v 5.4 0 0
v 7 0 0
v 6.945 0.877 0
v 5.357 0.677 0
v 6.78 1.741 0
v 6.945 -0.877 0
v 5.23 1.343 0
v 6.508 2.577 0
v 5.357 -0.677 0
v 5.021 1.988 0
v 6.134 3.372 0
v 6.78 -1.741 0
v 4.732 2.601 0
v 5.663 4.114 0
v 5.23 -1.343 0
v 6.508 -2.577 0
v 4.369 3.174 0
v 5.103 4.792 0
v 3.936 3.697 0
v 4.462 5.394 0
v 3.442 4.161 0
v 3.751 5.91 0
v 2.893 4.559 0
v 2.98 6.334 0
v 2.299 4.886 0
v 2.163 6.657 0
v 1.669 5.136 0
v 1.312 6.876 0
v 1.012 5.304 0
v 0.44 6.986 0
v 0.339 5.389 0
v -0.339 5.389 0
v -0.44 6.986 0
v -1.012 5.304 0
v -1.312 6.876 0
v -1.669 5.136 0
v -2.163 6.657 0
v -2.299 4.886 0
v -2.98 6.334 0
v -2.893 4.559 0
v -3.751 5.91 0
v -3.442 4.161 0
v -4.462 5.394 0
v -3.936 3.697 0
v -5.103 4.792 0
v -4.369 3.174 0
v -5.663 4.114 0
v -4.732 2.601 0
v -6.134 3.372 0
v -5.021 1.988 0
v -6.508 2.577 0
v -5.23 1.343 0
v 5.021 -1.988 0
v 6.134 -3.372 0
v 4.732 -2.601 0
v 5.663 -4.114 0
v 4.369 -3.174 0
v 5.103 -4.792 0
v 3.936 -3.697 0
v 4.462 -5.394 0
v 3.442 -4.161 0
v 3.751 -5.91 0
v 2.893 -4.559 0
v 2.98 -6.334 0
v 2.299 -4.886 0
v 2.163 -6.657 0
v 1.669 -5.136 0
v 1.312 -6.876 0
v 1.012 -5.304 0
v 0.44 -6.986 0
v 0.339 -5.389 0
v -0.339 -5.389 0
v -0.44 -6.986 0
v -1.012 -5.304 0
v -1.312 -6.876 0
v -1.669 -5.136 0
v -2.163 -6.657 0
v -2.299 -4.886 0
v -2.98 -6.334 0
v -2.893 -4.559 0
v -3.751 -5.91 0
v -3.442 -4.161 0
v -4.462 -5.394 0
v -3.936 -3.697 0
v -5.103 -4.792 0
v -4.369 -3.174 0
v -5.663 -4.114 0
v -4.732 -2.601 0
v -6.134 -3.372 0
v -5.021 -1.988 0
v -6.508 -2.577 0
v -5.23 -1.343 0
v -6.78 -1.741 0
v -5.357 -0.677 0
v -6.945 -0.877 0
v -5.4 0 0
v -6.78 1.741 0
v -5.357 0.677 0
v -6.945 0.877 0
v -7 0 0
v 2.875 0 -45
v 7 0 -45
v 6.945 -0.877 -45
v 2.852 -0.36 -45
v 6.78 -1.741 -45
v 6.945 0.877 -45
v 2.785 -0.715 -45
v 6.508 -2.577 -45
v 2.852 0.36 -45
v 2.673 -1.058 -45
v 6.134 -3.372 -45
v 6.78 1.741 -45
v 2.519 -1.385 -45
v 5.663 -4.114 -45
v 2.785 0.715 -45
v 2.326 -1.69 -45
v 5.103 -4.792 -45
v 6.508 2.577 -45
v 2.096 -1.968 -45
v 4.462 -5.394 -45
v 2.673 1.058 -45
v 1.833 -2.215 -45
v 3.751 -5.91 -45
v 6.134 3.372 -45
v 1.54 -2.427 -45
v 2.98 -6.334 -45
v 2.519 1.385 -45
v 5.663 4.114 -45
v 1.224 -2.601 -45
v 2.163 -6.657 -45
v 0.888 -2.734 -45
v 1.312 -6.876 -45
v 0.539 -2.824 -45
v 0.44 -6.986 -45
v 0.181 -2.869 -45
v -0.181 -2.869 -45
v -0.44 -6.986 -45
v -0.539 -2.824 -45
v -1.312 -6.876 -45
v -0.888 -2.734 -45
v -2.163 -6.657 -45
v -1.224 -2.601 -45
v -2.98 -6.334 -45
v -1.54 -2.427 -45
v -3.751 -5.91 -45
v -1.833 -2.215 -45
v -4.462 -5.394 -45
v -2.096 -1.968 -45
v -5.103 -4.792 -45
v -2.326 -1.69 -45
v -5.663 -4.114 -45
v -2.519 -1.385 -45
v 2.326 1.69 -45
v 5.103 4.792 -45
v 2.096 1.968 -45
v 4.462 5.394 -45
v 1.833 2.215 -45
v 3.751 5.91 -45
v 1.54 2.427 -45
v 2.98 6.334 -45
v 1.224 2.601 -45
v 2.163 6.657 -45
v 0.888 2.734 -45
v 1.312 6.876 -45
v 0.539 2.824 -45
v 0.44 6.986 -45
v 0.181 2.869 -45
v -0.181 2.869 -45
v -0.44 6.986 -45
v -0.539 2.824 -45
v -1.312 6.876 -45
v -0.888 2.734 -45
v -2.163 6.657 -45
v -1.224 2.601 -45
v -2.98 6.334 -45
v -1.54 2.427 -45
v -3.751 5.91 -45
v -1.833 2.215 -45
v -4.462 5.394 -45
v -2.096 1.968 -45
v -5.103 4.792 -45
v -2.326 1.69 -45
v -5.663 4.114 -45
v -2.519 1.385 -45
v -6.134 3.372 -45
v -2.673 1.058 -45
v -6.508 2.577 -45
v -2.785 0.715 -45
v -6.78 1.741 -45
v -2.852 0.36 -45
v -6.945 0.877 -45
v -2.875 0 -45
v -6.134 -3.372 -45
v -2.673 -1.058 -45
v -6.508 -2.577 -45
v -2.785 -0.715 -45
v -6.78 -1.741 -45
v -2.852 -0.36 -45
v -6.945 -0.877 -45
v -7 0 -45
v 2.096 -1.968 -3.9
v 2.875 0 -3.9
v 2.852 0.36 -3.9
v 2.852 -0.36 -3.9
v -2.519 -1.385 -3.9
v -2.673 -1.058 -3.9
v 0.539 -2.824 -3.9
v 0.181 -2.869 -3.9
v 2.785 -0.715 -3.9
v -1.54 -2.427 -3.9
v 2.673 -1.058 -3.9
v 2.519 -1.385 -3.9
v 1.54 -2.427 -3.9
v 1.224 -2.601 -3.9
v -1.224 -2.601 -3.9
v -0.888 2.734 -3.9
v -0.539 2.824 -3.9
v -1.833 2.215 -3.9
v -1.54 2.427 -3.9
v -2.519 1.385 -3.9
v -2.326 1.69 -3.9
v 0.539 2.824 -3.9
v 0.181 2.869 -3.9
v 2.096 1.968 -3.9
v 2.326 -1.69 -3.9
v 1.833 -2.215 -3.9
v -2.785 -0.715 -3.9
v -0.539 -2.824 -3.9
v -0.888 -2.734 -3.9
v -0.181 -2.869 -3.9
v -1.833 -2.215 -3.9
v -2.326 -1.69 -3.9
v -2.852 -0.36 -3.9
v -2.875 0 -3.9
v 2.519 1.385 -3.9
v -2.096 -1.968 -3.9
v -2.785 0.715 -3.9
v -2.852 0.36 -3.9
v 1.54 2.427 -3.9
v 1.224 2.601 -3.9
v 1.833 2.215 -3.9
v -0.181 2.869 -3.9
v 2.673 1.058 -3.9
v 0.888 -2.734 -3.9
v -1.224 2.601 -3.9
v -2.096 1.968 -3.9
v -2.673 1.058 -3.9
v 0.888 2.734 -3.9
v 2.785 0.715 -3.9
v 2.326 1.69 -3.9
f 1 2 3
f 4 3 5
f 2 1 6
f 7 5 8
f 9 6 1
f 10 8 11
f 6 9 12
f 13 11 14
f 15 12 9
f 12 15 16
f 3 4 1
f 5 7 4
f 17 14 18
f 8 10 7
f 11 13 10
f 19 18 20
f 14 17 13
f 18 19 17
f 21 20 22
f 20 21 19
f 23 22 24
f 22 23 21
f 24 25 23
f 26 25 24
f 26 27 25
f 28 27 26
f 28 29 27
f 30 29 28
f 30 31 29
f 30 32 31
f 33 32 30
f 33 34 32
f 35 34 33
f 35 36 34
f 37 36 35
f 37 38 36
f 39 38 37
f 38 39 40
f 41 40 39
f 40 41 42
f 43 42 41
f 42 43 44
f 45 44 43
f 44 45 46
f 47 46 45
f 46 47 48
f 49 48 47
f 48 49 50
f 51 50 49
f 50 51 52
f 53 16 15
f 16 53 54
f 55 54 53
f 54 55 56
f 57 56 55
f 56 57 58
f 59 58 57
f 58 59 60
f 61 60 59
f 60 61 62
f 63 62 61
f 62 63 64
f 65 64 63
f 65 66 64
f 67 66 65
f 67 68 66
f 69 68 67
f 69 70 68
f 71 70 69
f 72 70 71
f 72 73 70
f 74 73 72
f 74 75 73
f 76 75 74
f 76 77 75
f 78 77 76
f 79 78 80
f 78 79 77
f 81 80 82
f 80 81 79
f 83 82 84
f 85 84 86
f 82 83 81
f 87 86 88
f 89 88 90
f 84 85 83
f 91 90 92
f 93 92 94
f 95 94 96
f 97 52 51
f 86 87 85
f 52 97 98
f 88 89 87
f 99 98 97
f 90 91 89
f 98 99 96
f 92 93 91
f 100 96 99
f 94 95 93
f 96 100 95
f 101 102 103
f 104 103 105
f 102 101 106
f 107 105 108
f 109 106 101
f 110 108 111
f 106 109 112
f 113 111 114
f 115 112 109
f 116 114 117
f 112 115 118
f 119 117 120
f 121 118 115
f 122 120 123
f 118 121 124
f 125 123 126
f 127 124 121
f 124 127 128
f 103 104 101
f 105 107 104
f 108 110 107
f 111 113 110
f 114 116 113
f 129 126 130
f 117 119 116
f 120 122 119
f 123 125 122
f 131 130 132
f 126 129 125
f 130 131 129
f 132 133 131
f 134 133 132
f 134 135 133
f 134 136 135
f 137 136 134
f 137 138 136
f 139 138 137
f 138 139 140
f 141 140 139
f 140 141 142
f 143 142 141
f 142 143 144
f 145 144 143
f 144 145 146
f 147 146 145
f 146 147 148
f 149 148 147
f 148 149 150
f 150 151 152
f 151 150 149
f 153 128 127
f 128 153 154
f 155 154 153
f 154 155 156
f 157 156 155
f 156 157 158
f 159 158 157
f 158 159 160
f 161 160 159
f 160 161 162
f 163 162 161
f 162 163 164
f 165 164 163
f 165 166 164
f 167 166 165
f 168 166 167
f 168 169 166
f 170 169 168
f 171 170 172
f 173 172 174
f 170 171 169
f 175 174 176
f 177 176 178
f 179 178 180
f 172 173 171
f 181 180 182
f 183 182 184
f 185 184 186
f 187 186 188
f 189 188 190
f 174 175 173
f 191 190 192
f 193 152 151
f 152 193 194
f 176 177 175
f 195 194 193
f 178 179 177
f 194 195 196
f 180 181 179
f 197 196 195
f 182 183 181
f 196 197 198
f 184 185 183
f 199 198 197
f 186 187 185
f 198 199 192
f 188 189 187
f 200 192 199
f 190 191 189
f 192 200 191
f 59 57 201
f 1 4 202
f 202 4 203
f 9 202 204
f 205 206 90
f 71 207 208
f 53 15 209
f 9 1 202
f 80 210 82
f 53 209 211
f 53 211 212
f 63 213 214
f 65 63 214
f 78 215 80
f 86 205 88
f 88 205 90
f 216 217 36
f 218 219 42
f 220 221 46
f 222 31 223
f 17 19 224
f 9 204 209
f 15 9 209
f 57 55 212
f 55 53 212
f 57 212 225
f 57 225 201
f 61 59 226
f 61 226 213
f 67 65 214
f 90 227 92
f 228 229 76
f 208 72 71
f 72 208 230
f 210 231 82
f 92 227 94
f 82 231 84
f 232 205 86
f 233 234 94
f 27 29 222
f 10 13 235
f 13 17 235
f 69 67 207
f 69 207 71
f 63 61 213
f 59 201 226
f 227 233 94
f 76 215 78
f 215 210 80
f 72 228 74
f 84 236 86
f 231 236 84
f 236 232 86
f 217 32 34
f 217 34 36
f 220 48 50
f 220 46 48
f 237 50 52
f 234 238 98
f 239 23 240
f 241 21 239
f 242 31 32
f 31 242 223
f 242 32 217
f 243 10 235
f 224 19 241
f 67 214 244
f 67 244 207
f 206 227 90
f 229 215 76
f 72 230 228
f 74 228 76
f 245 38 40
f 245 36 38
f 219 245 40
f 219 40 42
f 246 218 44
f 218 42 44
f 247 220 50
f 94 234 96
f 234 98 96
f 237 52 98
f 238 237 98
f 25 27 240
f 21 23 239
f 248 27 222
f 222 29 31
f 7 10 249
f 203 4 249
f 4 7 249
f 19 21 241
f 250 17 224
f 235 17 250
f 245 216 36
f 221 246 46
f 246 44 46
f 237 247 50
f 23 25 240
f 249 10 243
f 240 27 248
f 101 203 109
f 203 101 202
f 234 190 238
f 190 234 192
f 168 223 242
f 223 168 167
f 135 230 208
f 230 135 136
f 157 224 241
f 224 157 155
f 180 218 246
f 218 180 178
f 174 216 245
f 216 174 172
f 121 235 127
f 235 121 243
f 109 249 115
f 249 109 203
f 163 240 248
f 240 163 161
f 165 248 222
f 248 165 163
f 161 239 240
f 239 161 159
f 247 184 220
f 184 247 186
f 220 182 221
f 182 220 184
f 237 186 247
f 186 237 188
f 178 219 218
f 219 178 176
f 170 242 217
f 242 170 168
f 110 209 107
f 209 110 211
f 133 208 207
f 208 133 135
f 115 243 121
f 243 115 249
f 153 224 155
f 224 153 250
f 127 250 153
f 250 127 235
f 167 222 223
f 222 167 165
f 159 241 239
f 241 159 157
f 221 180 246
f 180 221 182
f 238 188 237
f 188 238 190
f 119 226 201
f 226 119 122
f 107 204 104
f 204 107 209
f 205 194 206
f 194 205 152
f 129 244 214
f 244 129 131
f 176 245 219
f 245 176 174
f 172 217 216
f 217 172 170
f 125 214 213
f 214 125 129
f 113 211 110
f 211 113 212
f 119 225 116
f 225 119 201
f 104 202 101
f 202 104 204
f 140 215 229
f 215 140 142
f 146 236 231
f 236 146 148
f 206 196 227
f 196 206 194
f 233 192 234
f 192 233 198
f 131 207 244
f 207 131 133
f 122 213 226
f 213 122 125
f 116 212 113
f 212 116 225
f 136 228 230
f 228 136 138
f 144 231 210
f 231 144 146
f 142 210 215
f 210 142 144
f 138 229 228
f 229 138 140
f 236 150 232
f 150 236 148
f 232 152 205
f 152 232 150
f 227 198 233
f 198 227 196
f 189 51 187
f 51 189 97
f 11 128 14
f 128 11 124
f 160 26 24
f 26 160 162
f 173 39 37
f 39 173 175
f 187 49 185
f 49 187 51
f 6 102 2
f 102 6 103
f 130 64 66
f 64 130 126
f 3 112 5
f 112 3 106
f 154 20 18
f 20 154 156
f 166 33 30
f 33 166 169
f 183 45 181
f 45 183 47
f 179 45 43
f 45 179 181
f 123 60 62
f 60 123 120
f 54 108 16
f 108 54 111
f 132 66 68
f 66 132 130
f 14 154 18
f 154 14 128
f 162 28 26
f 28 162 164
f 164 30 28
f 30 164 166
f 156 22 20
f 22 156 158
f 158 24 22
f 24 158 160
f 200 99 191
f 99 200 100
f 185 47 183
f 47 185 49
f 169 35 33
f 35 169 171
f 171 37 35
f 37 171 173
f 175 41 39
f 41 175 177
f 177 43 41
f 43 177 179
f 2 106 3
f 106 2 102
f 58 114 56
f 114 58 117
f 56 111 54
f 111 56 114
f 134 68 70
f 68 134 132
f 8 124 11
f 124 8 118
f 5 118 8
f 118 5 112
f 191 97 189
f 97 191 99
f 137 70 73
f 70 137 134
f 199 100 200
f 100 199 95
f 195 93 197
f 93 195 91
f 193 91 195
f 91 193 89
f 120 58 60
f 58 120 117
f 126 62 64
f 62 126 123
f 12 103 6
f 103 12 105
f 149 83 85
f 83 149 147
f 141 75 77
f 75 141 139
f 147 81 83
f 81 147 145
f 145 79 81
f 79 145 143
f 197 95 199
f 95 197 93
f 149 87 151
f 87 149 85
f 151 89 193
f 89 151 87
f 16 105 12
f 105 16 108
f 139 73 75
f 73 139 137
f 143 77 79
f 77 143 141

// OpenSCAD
$fn = 50;


difference() {
	union() {
		translate(v = [0, 0, -45.0000000000]) {
			cylinder(h = 45, r = 7.0000000000);
		}
		cylinder(h = 0, r = 16.0000000000);
	}
	union() {
		translate(v = [0, 0, 0]) {
			rotate(a = [0, 0, 0]) {
				difference() {
					union() {
						#translate(v = [0, 0, -45.0000000000]) {
							cylinder(h = 45, r = 2.6000000000);
						}
						#translate(v = [0, 0, -3.9000000000]) {
							cylinder(h = 3.9000000000, r1 = 2.8750000000, r2 = 5.4000000000);
						}
						#translate(v = [0, 0, -45.0000000000]) {
							cylinder(h = 45, r = 2.8750000000);
						}
						#translate(v = [0, 0, -45.0000000000]) {
							cylinder(h = 45, r = 2.6000000000);
						}
					}
					union();
				}
			}
		}
	}
}
